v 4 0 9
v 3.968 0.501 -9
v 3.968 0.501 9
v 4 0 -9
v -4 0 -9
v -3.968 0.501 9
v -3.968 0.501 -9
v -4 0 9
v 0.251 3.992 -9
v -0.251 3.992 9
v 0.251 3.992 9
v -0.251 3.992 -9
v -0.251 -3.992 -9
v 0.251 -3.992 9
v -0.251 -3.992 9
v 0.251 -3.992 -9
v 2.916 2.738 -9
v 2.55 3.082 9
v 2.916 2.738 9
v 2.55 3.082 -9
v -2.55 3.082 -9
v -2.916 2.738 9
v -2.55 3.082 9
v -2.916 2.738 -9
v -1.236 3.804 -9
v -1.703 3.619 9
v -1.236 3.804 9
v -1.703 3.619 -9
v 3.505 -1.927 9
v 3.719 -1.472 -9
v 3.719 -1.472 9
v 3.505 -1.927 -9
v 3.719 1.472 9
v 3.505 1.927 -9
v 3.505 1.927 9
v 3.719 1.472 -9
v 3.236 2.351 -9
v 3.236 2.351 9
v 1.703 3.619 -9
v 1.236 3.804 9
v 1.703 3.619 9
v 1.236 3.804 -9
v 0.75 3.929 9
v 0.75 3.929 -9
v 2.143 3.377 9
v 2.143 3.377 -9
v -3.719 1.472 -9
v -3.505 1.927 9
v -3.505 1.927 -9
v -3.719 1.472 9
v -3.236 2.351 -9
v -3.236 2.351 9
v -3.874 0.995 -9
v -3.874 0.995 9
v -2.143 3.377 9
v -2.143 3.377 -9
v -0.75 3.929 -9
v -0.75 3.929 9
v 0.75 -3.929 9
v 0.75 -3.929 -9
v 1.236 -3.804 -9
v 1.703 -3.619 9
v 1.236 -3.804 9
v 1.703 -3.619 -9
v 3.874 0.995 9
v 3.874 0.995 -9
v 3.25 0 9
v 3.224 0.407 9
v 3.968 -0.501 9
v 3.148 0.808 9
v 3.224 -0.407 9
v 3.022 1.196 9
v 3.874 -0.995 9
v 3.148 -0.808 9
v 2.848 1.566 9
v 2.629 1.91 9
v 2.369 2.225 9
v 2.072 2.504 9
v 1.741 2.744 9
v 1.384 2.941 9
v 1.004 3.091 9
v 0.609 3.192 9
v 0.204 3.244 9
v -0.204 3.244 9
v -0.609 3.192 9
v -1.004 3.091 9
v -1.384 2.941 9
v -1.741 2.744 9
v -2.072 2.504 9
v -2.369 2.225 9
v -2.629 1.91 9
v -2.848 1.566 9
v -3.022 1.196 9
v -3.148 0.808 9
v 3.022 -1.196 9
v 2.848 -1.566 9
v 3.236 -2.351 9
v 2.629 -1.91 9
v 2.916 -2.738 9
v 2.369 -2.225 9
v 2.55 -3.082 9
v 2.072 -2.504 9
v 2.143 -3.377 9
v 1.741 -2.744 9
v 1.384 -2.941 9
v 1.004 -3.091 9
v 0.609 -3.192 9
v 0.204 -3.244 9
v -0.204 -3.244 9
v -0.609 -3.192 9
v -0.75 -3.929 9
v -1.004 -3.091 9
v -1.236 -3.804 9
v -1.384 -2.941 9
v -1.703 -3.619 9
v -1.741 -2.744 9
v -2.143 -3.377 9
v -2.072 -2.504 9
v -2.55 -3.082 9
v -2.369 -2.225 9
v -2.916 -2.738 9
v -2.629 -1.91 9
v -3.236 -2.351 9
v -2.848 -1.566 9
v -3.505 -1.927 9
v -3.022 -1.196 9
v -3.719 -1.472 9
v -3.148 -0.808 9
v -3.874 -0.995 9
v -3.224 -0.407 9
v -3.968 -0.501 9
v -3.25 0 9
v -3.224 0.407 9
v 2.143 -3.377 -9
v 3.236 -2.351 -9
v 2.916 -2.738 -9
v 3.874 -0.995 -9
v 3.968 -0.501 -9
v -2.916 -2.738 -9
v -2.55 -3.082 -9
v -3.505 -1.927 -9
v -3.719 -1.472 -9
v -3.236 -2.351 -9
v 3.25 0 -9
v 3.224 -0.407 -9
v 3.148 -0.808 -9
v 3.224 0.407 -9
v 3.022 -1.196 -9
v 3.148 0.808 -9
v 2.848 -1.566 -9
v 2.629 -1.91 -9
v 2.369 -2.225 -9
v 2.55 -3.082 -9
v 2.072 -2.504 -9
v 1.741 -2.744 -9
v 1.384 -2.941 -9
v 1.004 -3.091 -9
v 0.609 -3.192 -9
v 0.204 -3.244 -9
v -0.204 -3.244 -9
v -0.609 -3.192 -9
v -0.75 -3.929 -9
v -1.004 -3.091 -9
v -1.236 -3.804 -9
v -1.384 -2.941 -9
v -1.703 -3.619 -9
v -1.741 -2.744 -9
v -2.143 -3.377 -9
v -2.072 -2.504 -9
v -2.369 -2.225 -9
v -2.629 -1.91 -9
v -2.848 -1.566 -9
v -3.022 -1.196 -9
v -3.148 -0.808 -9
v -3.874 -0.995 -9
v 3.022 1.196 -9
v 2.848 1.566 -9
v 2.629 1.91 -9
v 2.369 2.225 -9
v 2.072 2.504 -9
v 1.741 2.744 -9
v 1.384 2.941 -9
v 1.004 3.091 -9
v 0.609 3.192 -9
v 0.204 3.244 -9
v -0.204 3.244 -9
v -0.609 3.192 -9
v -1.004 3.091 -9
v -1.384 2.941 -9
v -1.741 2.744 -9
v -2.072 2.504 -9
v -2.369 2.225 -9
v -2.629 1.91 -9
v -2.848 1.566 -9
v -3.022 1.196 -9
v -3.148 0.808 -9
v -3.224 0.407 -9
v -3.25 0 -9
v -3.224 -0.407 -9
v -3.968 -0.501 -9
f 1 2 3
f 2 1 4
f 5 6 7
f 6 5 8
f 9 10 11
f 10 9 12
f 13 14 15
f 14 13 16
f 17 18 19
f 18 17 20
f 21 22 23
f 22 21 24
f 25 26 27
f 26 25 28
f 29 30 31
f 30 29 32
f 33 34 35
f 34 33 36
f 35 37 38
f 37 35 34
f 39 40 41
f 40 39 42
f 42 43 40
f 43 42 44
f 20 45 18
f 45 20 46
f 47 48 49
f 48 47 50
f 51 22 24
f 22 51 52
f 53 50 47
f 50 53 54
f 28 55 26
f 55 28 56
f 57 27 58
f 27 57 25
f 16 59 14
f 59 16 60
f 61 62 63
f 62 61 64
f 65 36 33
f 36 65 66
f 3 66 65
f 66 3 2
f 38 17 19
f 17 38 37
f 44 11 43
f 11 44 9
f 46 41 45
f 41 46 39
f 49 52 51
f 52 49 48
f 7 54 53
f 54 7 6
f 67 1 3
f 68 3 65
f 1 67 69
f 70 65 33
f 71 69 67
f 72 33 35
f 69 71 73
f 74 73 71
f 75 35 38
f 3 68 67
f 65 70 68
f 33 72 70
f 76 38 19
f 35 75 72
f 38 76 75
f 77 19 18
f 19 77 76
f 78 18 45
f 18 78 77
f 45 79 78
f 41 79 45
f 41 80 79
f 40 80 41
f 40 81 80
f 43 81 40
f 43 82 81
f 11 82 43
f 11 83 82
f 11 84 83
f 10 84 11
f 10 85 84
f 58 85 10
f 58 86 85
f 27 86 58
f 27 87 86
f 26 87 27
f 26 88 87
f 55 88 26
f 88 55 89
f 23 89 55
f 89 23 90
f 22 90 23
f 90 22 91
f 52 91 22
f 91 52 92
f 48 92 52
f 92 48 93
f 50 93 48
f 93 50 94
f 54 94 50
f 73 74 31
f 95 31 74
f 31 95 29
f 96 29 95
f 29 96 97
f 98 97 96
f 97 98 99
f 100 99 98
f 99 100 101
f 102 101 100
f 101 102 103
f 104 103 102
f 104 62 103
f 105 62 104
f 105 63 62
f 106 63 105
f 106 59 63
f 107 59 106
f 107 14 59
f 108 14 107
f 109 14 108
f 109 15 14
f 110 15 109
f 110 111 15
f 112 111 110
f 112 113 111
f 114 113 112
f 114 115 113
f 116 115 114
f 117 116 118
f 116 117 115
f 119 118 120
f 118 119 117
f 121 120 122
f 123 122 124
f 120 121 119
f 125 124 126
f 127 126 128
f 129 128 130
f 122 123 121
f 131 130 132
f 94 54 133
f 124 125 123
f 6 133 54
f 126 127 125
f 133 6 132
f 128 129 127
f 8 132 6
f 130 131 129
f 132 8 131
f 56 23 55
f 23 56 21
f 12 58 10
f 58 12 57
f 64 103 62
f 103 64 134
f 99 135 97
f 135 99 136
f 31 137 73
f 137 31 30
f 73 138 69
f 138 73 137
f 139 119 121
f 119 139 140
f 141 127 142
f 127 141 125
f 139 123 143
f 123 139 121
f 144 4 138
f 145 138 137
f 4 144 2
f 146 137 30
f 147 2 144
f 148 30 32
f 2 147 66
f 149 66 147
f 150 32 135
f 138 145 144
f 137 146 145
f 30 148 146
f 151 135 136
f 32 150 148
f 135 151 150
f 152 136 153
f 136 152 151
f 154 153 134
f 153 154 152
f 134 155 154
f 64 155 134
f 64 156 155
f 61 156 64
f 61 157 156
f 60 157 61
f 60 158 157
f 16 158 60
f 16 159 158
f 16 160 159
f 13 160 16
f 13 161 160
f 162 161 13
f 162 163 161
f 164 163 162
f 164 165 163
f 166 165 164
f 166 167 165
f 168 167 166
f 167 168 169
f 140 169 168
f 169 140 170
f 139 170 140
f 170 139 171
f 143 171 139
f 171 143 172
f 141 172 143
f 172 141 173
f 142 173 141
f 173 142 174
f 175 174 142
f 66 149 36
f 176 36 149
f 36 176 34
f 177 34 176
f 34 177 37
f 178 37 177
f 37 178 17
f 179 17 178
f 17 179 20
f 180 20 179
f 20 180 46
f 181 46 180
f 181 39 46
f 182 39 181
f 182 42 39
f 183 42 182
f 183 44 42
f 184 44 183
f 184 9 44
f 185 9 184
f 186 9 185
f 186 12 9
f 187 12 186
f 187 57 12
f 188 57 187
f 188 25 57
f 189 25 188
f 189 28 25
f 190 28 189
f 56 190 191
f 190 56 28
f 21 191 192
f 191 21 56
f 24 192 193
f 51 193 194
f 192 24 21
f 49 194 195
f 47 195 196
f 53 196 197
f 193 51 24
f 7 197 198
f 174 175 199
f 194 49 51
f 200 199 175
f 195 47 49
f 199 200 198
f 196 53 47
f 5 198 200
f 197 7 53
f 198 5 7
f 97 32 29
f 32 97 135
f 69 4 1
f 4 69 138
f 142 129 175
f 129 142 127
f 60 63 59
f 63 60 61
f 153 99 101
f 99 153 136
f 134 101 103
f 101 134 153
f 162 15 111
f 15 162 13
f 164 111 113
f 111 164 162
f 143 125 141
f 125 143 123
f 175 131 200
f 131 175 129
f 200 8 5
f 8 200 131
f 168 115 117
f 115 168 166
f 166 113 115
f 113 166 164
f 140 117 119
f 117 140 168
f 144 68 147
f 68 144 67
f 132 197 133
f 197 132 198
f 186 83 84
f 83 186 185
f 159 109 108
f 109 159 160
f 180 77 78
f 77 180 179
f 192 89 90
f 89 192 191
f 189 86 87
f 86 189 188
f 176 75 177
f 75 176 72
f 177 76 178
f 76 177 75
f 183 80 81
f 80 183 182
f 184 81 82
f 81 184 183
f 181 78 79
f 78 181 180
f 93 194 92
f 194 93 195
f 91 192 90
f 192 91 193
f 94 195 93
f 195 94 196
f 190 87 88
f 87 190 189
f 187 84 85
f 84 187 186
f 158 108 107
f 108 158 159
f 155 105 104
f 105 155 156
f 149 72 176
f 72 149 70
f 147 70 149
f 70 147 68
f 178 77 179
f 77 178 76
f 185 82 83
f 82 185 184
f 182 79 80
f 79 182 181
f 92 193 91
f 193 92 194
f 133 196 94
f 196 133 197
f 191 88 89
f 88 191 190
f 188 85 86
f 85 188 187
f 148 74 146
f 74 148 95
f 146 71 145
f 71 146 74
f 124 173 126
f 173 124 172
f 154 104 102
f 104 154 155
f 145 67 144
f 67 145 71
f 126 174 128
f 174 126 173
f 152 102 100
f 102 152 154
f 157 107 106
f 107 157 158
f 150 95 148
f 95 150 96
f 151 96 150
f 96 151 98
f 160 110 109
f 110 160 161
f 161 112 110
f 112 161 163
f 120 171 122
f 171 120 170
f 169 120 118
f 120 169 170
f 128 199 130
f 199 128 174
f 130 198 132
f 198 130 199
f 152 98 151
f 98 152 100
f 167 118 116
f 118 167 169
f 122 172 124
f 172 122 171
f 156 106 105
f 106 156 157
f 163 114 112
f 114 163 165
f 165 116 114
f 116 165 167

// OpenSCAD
$fn = 50;


difference() {
	union() {
		translate(v = [0, 0, -9.0000000000]) {
			cylinder(h = 18, r = 4.0000000000);
		}
	}
	union() {
		translate(v = [0, 0, -100.0000000000]) {
			cylinder(h = 200, r = 3.2500000000);
		}
	}
}
